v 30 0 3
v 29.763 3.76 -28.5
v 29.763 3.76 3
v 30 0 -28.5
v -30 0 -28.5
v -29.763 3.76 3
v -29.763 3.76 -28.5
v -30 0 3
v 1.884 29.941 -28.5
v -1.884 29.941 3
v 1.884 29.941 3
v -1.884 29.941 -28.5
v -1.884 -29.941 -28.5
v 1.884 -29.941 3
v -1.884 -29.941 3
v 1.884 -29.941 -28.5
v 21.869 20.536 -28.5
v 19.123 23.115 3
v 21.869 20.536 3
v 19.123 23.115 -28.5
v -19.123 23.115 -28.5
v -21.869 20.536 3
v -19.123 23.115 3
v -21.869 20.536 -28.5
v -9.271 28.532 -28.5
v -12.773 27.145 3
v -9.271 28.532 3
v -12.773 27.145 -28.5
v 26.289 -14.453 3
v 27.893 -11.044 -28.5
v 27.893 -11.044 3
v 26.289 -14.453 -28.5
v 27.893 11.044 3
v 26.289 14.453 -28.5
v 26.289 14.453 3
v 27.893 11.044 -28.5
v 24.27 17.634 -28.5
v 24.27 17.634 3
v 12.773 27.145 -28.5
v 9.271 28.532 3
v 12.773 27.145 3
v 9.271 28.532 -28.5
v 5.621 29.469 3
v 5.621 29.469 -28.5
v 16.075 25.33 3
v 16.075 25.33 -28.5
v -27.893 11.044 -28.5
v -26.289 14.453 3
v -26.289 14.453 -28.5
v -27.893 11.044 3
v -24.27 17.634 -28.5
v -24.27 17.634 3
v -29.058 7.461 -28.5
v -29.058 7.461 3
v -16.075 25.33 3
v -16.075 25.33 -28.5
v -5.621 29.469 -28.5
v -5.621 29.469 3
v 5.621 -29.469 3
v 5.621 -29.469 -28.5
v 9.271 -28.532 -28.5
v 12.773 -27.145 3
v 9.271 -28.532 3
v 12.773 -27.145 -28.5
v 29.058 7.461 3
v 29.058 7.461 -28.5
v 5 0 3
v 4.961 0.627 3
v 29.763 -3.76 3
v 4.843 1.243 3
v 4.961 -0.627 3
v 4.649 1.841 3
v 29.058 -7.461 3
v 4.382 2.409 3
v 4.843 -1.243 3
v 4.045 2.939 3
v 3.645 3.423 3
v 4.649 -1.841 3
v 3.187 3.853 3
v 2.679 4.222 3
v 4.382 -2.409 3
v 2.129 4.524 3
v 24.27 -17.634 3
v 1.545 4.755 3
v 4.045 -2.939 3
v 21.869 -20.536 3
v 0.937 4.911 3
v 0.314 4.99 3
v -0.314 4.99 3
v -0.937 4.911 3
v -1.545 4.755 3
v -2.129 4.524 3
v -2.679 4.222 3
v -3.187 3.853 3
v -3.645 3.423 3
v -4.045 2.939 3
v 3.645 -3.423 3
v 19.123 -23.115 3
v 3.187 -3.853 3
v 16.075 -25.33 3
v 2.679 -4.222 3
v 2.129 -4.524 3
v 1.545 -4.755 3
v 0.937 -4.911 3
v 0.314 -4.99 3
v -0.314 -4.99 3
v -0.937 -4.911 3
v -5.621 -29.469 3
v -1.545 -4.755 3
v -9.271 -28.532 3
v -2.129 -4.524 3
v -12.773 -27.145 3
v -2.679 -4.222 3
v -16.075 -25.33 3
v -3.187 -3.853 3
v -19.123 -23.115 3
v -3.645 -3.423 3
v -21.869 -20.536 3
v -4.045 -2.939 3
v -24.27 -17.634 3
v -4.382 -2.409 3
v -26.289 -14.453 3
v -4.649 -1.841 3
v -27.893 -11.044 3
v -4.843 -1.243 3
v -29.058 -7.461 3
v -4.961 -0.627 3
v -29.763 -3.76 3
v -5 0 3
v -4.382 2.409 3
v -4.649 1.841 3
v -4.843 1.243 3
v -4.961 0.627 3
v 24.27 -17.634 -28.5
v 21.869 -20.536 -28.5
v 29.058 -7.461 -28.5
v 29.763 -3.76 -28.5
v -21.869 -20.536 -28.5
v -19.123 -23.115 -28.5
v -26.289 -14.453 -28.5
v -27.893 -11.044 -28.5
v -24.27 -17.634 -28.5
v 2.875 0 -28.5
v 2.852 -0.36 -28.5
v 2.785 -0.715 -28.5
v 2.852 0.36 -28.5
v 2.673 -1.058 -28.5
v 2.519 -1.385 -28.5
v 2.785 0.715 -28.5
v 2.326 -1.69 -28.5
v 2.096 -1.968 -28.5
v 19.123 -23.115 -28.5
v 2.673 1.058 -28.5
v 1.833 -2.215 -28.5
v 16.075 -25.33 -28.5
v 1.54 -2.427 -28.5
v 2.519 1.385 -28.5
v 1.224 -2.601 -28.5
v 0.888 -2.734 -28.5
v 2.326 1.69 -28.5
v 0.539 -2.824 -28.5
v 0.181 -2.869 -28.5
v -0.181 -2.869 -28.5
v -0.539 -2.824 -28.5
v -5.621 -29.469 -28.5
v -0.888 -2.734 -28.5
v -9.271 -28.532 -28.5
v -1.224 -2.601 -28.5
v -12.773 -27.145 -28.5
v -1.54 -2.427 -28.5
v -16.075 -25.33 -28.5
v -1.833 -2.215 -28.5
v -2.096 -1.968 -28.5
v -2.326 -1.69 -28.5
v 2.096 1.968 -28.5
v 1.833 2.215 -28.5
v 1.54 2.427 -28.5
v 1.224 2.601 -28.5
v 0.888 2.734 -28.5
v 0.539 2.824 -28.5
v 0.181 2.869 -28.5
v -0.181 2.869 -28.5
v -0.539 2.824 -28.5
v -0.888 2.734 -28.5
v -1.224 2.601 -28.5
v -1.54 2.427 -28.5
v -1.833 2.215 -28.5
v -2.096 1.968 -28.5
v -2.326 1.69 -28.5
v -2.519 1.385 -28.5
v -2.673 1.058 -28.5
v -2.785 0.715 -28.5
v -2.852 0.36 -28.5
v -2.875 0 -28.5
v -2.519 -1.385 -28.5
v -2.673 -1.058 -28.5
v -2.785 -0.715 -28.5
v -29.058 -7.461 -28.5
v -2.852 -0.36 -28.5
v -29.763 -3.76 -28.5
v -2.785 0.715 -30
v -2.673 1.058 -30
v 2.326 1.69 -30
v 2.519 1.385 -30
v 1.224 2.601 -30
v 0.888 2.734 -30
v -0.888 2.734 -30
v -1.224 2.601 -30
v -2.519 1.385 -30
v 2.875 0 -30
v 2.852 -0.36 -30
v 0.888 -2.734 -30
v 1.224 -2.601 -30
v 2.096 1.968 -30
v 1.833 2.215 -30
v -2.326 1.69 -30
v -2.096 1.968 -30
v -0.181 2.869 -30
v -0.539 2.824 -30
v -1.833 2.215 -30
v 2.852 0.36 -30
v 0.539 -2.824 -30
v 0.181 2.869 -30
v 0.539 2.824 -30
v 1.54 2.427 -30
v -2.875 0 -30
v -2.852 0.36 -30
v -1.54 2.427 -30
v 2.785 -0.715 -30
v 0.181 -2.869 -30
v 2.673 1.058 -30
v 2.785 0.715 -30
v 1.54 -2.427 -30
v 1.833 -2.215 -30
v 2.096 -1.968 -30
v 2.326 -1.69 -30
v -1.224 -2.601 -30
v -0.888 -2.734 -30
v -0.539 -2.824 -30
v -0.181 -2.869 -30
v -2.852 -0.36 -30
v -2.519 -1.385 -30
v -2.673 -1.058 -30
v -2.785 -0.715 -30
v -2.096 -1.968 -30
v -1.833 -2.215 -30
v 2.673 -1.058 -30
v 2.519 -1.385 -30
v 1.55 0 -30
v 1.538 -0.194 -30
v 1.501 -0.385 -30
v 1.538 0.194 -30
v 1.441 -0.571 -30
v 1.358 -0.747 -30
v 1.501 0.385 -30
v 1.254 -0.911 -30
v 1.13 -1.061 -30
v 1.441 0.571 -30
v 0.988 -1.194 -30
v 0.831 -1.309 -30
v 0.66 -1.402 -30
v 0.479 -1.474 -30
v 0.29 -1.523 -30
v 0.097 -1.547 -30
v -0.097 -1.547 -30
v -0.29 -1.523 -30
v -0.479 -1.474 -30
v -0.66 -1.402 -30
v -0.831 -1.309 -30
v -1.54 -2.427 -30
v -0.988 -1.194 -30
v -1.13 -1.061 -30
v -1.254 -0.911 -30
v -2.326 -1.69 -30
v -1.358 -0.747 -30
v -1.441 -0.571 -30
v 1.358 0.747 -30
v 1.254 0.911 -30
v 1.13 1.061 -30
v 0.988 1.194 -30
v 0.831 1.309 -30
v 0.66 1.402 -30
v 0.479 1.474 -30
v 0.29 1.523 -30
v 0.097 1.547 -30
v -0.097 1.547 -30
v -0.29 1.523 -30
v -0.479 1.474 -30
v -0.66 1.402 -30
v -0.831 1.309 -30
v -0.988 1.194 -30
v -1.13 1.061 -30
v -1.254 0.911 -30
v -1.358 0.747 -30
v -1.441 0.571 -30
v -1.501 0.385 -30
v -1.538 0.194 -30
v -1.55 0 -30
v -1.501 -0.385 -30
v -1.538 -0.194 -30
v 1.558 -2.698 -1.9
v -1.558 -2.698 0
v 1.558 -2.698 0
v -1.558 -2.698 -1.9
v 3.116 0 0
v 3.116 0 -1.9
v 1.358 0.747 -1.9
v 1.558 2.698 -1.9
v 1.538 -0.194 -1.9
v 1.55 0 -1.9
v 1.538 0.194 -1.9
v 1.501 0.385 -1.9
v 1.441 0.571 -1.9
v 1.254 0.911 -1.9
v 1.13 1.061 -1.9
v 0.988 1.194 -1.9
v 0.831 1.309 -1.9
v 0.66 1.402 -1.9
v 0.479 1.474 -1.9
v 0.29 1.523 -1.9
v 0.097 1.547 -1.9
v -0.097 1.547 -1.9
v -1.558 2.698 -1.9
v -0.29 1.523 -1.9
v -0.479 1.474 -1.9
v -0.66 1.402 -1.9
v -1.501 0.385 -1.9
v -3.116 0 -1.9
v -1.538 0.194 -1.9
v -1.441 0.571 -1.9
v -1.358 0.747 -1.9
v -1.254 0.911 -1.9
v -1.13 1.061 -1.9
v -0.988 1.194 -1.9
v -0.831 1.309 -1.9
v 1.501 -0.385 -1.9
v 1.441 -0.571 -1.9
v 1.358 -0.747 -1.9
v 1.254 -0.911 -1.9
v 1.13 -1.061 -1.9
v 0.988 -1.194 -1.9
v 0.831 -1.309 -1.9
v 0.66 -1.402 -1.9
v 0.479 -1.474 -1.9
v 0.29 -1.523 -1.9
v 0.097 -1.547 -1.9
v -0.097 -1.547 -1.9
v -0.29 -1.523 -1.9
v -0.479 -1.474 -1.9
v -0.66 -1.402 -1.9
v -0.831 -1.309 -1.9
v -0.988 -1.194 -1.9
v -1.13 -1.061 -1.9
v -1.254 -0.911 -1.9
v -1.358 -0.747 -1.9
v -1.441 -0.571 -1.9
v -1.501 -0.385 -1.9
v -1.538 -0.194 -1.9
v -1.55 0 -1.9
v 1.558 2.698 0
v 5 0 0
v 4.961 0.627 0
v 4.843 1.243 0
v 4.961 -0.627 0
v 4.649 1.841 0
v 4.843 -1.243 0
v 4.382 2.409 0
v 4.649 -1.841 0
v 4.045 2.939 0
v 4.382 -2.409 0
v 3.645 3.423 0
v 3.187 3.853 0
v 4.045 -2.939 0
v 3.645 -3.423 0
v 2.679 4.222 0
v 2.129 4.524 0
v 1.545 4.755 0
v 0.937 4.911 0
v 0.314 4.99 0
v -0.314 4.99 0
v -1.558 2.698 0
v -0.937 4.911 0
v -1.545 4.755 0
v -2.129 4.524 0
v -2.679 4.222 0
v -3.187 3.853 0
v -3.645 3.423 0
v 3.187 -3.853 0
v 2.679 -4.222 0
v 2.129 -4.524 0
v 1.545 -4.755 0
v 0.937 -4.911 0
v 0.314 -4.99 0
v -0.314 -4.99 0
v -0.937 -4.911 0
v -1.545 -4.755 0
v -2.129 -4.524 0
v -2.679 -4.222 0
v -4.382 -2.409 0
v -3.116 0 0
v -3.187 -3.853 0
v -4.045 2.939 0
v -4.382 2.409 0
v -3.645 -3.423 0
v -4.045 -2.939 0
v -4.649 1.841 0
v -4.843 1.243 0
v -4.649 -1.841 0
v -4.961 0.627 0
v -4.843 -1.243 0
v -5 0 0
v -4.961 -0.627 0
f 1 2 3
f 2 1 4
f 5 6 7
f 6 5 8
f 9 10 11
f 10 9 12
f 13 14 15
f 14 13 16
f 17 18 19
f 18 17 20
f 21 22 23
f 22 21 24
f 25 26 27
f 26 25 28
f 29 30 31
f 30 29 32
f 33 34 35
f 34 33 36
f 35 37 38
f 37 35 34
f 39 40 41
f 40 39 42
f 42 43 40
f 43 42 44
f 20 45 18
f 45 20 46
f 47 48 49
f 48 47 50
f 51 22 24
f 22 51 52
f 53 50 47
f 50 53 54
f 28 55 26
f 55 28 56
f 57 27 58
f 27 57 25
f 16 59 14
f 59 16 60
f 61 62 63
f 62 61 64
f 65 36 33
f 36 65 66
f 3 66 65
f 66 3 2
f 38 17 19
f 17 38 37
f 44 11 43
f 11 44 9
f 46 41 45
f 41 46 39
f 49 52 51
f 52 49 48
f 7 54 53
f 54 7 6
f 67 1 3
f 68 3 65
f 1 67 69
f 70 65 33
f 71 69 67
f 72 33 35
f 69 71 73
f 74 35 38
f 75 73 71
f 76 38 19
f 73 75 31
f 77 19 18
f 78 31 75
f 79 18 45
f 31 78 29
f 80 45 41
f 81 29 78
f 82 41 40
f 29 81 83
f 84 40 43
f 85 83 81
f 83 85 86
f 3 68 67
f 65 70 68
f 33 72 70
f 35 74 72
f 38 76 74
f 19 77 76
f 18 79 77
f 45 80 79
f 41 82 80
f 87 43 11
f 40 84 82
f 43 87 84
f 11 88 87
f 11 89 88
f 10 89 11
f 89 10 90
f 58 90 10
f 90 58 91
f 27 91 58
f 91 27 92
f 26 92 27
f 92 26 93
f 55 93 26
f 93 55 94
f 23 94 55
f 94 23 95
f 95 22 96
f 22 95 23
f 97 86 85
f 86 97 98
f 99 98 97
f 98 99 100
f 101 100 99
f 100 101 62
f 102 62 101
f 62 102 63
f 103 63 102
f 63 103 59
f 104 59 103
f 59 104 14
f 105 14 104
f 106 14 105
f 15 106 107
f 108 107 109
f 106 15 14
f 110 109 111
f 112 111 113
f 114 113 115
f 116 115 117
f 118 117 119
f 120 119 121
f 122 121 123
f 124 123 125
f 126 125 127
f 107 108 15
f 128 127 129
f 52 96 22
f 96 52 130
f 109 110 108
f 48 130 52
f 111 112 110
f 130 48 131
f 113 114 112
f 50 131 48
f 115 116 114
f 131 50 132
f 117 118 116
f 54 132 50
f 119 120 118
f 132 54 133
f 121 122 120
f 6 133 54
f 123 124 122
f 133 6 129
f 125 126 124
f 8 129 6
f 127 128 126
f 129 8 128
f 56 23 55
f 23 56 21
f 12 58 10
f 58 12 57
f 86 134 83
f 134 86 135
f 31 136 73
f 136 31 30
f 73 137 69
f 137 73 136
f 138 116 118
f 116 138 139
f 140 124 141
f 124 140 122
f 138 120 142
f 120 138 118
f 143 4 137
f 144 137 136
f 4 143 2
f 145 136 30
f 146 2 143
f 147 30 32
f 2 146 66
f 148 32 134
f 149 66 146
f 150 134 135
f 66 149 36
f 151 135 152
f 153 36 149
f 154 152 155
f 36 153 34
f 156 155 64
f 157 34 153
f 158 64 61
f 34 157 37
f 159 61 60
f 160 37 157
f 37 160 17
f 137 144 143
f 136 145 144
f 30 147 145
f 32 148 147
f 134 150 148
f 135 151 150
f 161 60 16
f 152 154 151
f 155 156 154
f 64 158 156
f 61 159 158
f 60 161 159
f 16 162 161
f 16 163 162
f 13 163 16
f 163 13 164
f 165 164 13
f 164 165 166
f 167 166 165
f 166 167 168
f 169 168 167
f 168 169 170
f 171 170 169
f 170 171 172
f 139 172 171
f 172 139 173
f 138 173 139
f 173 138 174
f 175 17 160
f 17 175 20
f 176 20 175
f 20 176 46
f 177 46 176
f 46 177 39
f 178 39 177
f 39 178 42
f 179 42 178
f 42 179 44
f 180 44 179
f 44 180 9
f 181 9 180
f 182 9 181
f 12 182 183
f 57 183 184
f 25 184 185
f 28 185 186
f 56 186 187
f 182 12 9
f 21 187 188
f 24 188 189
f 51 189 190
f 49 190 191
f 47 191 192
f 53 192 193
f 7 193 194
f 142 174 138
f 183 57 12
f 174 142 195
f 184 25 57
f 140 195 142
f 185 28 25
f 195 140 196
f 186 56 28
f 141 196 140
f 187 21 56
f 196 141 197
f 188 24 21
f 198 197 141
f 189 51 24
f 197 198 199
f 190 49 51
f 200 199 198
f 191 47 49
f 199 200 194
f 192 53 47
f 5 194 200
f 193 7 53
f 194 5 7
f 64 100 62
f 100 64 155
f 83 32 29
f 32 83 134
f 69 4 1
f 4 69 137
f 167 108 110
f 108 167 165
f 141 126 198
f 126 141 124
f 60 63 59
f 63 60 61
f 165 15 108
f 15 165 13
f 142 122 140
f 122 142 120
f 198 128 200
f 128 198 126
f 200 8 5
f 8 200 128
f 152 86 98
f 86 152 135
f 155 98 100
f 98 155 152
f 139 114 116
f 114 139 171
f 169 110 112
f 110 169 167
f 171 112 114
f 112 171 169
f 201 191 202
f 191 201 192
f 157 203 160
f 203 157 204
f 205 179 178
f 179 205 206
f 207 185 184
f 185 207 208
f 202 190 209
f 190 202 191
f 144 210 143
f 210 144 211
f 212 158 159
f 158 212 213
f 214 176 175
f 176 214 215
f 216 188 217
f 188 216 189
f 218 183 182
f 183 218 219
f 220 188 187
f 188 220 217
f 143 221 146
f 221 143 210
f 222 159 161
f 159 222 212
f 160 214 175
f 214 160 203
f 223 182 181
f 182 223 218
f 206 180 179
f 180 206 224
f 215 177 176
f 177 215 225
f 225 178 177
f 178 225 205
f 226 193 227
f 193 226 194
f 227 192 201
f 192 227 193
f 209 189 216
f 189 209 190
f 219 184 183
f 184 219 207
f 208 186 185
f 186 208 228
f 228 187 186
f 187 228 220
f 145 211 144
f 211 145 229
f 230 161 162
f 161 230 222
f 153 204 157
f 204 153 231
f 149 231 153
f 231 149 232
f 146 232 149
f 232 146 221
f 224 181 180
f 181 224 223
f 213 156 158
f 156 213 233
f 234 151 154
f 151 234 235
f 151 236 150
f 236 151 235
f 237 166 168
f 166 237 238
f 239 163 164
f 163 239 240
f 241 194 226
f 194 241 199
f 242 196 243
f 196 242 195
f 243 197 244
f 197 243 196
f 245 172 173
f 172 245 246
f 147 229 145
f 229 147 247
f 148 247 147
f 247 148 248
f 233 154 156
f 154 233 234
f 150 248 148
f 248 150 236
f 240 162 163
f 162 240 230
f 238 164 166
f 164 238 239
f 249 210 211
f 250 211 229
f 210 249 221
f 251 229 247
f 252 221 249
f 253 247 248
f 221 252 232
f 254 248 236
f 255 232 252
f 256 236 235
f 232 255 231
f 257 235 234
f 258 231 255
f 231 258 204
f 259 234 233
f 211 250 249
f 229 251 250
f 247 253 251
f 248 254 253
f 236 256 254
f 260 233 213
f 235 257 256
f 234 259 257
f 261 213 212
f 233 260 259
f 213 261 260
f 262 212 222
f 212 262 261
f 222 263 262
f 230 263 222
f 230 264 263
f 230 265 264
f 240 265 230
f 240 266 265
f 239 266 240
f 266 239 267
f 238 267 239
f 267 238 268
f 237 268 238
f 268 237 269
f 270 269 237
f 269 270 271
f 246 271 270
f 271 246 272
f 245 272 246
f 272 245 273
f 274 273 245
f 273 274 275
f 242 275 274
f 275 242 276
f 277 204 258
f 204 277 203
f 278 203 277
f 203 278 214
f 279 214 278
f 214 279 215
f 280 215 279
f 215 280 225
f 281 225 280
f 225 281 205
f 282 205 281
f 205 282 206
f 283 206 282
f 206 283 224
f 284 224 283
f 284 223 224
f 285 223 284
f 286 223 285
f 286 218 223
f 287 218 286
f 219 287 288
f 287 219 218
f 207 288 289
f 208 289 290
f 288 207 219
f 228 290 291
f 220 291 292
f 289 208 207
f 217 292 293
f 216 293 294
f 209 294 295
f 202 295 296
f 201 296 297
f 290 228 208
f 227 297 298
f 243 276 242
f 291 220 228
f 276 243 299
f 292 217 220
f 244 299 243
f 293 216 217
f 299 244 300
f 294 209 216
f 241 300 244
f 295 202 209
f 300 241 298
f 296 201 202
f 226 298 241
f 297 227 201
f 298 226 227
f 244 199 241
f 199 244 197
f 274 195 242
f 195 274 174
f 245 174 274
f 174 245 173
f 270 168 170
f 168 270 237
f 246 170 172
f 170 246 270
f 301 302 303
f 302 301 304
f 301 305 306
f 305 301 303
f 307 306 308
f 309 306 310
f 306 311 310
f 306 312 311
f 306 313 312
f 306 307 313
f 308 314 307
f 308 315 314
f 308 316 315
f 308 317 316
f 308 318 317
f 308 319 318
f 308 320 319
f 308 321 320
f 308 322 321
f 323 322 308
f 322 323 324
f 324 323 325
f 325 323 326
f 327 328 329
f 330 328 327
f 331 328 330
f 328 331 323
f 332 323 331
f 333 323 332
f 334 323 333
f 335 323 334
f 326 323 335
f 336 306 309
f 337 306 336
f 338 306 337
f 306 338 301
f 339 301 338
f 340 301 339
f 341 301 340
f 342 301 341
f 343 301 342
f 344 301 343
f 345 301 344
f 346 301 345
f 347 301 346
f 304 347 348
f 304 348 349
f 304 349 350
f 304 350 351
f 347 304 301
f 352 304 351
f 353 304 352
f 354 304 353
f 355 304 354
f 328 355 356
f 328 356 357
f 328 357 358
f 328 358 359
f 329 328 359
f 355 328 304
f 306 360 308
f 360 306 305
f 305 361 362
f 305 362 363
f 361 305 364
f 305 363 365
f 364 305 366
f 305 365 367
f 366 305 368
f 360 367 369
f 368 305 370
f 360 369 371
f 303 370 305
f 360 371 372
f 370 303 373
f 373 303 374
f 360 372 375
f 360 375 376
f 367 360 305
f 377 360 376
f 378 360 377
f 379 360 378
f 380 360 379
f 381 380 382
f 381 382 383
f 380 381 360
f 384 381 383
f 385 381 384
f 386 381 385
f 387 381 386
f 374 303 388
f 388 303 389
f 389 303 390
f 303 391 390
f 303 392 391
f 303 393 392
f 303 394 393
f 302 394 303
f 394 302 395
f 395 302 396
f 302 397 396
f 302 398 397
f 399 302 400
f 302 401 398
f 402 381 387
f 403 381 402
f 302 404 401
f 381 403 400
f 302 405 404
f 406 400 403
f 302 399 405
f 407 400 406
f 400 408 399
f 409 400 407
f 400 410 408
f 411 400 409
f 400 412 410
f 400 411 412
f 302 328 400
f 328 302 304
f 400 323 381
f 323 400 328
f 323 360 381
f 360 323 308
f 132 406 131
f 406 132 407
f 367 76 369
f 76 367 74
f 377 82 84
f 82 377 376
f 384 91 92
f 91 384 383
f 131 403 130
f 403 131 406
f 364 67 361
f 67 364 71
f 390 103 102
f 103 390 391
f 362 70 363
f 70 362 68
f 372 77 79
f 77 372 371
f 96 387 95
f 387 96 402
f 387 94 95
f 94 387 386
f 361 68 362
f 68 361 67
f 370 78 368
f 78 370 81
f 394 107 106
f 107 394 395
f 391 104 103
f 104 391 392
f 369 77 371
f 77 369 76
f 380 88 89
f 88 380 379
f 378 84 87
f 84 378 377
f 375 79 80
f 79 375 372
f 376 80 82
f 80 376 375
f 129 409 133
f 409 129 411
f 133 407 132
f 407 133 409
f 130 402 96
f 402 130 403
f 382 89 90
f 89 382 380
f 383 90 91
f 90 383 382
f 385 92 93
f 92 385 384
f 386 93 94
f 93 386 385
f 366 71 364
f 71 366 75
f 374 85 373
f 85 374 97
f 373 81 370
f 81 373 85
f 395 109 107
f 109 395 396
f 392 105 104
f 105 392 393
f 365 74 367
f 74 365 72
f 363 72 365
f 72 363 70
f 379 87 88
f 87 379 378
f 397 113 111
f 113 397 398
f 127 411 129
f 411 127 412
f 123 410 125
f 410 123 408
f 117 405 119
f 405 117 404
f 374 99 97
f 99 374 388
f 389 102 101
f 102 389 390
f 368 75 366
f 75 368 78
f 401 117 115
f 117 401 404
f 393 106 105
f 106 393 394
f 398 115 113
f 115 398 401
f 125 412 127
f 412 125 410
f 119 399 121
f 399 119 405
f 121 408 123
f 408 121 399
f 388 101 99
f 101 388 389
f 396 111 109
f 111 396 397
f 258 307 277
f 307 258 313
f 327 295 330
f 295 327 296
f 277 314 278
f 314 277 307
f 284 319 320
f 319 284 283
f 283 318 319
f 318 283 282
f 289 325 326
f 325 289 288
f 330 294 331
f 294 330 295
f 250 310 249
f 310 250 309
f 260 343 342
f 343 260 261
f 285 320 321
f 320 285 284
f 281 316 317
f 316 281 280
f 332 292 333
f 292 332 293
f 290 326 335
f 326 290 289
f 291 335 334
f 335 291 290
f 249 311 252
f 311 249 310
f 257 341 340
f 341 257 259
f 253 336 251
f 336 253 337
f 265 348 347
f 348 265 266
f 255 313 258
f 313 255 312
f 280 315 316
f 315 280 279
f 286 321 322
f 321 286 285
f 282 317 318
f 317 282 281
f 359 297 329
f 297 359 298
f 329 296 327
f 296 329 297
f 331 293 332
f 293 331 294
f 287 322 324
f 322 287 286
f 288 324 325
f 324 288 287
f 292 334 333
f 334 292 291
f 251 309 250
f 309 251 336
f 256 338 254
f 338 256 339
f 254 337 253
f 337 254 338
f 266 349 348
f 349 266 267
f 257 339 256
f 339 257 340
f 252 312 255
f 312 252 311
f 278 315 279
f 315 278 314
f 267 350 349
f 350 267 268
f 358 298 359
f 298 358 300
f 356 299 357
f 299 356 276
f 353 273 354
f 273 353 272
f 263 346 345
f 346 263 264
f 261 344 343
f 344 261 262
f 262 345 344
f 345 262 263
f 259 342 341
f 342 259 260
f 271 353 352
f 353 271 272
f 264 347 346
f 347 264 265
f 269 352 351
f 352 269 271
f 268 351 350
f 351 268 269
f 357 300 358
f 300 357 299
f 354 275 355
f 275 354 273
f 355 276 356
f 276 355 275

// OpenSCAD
$fn = 50;

difference() {
	union() {
		translate(v = [0, 0, -28.5]) {
			cylinder(h = 31.5, r = 30.0);
		}
		#translate(v = [0, 0, -30.0]) {
			cylinder(h = 30, r = 2.875);
		}
	}
	union() {
		translate(v = [0, 0, 0]) {
			rotate(a = [0, 0, 0]) {
				difference() {
					union() {
						translate(v = [0, 0, -1.9]) {
							linear_extrude(height = 1.9) {
								polygon(points = [[3.1158, 0.0], [1.5579000000000005, 2.698361953111554], [-1.5578999999999994, 2.6983619531115544], [-3.1158, 3.815754496783323e-16], [-1.5579000000000014, -2.6983619531115535], [1.557899999999998, -2.6983619531115552]]);
							}
						}
					}
					union();
				}
			}
		}
		#cylinder(h = 3, r = 5.0);
		#translate(v = [0, 0, -100.0]) {
			cylinder(h = 200, r = 1.55);
		}
	}
}
